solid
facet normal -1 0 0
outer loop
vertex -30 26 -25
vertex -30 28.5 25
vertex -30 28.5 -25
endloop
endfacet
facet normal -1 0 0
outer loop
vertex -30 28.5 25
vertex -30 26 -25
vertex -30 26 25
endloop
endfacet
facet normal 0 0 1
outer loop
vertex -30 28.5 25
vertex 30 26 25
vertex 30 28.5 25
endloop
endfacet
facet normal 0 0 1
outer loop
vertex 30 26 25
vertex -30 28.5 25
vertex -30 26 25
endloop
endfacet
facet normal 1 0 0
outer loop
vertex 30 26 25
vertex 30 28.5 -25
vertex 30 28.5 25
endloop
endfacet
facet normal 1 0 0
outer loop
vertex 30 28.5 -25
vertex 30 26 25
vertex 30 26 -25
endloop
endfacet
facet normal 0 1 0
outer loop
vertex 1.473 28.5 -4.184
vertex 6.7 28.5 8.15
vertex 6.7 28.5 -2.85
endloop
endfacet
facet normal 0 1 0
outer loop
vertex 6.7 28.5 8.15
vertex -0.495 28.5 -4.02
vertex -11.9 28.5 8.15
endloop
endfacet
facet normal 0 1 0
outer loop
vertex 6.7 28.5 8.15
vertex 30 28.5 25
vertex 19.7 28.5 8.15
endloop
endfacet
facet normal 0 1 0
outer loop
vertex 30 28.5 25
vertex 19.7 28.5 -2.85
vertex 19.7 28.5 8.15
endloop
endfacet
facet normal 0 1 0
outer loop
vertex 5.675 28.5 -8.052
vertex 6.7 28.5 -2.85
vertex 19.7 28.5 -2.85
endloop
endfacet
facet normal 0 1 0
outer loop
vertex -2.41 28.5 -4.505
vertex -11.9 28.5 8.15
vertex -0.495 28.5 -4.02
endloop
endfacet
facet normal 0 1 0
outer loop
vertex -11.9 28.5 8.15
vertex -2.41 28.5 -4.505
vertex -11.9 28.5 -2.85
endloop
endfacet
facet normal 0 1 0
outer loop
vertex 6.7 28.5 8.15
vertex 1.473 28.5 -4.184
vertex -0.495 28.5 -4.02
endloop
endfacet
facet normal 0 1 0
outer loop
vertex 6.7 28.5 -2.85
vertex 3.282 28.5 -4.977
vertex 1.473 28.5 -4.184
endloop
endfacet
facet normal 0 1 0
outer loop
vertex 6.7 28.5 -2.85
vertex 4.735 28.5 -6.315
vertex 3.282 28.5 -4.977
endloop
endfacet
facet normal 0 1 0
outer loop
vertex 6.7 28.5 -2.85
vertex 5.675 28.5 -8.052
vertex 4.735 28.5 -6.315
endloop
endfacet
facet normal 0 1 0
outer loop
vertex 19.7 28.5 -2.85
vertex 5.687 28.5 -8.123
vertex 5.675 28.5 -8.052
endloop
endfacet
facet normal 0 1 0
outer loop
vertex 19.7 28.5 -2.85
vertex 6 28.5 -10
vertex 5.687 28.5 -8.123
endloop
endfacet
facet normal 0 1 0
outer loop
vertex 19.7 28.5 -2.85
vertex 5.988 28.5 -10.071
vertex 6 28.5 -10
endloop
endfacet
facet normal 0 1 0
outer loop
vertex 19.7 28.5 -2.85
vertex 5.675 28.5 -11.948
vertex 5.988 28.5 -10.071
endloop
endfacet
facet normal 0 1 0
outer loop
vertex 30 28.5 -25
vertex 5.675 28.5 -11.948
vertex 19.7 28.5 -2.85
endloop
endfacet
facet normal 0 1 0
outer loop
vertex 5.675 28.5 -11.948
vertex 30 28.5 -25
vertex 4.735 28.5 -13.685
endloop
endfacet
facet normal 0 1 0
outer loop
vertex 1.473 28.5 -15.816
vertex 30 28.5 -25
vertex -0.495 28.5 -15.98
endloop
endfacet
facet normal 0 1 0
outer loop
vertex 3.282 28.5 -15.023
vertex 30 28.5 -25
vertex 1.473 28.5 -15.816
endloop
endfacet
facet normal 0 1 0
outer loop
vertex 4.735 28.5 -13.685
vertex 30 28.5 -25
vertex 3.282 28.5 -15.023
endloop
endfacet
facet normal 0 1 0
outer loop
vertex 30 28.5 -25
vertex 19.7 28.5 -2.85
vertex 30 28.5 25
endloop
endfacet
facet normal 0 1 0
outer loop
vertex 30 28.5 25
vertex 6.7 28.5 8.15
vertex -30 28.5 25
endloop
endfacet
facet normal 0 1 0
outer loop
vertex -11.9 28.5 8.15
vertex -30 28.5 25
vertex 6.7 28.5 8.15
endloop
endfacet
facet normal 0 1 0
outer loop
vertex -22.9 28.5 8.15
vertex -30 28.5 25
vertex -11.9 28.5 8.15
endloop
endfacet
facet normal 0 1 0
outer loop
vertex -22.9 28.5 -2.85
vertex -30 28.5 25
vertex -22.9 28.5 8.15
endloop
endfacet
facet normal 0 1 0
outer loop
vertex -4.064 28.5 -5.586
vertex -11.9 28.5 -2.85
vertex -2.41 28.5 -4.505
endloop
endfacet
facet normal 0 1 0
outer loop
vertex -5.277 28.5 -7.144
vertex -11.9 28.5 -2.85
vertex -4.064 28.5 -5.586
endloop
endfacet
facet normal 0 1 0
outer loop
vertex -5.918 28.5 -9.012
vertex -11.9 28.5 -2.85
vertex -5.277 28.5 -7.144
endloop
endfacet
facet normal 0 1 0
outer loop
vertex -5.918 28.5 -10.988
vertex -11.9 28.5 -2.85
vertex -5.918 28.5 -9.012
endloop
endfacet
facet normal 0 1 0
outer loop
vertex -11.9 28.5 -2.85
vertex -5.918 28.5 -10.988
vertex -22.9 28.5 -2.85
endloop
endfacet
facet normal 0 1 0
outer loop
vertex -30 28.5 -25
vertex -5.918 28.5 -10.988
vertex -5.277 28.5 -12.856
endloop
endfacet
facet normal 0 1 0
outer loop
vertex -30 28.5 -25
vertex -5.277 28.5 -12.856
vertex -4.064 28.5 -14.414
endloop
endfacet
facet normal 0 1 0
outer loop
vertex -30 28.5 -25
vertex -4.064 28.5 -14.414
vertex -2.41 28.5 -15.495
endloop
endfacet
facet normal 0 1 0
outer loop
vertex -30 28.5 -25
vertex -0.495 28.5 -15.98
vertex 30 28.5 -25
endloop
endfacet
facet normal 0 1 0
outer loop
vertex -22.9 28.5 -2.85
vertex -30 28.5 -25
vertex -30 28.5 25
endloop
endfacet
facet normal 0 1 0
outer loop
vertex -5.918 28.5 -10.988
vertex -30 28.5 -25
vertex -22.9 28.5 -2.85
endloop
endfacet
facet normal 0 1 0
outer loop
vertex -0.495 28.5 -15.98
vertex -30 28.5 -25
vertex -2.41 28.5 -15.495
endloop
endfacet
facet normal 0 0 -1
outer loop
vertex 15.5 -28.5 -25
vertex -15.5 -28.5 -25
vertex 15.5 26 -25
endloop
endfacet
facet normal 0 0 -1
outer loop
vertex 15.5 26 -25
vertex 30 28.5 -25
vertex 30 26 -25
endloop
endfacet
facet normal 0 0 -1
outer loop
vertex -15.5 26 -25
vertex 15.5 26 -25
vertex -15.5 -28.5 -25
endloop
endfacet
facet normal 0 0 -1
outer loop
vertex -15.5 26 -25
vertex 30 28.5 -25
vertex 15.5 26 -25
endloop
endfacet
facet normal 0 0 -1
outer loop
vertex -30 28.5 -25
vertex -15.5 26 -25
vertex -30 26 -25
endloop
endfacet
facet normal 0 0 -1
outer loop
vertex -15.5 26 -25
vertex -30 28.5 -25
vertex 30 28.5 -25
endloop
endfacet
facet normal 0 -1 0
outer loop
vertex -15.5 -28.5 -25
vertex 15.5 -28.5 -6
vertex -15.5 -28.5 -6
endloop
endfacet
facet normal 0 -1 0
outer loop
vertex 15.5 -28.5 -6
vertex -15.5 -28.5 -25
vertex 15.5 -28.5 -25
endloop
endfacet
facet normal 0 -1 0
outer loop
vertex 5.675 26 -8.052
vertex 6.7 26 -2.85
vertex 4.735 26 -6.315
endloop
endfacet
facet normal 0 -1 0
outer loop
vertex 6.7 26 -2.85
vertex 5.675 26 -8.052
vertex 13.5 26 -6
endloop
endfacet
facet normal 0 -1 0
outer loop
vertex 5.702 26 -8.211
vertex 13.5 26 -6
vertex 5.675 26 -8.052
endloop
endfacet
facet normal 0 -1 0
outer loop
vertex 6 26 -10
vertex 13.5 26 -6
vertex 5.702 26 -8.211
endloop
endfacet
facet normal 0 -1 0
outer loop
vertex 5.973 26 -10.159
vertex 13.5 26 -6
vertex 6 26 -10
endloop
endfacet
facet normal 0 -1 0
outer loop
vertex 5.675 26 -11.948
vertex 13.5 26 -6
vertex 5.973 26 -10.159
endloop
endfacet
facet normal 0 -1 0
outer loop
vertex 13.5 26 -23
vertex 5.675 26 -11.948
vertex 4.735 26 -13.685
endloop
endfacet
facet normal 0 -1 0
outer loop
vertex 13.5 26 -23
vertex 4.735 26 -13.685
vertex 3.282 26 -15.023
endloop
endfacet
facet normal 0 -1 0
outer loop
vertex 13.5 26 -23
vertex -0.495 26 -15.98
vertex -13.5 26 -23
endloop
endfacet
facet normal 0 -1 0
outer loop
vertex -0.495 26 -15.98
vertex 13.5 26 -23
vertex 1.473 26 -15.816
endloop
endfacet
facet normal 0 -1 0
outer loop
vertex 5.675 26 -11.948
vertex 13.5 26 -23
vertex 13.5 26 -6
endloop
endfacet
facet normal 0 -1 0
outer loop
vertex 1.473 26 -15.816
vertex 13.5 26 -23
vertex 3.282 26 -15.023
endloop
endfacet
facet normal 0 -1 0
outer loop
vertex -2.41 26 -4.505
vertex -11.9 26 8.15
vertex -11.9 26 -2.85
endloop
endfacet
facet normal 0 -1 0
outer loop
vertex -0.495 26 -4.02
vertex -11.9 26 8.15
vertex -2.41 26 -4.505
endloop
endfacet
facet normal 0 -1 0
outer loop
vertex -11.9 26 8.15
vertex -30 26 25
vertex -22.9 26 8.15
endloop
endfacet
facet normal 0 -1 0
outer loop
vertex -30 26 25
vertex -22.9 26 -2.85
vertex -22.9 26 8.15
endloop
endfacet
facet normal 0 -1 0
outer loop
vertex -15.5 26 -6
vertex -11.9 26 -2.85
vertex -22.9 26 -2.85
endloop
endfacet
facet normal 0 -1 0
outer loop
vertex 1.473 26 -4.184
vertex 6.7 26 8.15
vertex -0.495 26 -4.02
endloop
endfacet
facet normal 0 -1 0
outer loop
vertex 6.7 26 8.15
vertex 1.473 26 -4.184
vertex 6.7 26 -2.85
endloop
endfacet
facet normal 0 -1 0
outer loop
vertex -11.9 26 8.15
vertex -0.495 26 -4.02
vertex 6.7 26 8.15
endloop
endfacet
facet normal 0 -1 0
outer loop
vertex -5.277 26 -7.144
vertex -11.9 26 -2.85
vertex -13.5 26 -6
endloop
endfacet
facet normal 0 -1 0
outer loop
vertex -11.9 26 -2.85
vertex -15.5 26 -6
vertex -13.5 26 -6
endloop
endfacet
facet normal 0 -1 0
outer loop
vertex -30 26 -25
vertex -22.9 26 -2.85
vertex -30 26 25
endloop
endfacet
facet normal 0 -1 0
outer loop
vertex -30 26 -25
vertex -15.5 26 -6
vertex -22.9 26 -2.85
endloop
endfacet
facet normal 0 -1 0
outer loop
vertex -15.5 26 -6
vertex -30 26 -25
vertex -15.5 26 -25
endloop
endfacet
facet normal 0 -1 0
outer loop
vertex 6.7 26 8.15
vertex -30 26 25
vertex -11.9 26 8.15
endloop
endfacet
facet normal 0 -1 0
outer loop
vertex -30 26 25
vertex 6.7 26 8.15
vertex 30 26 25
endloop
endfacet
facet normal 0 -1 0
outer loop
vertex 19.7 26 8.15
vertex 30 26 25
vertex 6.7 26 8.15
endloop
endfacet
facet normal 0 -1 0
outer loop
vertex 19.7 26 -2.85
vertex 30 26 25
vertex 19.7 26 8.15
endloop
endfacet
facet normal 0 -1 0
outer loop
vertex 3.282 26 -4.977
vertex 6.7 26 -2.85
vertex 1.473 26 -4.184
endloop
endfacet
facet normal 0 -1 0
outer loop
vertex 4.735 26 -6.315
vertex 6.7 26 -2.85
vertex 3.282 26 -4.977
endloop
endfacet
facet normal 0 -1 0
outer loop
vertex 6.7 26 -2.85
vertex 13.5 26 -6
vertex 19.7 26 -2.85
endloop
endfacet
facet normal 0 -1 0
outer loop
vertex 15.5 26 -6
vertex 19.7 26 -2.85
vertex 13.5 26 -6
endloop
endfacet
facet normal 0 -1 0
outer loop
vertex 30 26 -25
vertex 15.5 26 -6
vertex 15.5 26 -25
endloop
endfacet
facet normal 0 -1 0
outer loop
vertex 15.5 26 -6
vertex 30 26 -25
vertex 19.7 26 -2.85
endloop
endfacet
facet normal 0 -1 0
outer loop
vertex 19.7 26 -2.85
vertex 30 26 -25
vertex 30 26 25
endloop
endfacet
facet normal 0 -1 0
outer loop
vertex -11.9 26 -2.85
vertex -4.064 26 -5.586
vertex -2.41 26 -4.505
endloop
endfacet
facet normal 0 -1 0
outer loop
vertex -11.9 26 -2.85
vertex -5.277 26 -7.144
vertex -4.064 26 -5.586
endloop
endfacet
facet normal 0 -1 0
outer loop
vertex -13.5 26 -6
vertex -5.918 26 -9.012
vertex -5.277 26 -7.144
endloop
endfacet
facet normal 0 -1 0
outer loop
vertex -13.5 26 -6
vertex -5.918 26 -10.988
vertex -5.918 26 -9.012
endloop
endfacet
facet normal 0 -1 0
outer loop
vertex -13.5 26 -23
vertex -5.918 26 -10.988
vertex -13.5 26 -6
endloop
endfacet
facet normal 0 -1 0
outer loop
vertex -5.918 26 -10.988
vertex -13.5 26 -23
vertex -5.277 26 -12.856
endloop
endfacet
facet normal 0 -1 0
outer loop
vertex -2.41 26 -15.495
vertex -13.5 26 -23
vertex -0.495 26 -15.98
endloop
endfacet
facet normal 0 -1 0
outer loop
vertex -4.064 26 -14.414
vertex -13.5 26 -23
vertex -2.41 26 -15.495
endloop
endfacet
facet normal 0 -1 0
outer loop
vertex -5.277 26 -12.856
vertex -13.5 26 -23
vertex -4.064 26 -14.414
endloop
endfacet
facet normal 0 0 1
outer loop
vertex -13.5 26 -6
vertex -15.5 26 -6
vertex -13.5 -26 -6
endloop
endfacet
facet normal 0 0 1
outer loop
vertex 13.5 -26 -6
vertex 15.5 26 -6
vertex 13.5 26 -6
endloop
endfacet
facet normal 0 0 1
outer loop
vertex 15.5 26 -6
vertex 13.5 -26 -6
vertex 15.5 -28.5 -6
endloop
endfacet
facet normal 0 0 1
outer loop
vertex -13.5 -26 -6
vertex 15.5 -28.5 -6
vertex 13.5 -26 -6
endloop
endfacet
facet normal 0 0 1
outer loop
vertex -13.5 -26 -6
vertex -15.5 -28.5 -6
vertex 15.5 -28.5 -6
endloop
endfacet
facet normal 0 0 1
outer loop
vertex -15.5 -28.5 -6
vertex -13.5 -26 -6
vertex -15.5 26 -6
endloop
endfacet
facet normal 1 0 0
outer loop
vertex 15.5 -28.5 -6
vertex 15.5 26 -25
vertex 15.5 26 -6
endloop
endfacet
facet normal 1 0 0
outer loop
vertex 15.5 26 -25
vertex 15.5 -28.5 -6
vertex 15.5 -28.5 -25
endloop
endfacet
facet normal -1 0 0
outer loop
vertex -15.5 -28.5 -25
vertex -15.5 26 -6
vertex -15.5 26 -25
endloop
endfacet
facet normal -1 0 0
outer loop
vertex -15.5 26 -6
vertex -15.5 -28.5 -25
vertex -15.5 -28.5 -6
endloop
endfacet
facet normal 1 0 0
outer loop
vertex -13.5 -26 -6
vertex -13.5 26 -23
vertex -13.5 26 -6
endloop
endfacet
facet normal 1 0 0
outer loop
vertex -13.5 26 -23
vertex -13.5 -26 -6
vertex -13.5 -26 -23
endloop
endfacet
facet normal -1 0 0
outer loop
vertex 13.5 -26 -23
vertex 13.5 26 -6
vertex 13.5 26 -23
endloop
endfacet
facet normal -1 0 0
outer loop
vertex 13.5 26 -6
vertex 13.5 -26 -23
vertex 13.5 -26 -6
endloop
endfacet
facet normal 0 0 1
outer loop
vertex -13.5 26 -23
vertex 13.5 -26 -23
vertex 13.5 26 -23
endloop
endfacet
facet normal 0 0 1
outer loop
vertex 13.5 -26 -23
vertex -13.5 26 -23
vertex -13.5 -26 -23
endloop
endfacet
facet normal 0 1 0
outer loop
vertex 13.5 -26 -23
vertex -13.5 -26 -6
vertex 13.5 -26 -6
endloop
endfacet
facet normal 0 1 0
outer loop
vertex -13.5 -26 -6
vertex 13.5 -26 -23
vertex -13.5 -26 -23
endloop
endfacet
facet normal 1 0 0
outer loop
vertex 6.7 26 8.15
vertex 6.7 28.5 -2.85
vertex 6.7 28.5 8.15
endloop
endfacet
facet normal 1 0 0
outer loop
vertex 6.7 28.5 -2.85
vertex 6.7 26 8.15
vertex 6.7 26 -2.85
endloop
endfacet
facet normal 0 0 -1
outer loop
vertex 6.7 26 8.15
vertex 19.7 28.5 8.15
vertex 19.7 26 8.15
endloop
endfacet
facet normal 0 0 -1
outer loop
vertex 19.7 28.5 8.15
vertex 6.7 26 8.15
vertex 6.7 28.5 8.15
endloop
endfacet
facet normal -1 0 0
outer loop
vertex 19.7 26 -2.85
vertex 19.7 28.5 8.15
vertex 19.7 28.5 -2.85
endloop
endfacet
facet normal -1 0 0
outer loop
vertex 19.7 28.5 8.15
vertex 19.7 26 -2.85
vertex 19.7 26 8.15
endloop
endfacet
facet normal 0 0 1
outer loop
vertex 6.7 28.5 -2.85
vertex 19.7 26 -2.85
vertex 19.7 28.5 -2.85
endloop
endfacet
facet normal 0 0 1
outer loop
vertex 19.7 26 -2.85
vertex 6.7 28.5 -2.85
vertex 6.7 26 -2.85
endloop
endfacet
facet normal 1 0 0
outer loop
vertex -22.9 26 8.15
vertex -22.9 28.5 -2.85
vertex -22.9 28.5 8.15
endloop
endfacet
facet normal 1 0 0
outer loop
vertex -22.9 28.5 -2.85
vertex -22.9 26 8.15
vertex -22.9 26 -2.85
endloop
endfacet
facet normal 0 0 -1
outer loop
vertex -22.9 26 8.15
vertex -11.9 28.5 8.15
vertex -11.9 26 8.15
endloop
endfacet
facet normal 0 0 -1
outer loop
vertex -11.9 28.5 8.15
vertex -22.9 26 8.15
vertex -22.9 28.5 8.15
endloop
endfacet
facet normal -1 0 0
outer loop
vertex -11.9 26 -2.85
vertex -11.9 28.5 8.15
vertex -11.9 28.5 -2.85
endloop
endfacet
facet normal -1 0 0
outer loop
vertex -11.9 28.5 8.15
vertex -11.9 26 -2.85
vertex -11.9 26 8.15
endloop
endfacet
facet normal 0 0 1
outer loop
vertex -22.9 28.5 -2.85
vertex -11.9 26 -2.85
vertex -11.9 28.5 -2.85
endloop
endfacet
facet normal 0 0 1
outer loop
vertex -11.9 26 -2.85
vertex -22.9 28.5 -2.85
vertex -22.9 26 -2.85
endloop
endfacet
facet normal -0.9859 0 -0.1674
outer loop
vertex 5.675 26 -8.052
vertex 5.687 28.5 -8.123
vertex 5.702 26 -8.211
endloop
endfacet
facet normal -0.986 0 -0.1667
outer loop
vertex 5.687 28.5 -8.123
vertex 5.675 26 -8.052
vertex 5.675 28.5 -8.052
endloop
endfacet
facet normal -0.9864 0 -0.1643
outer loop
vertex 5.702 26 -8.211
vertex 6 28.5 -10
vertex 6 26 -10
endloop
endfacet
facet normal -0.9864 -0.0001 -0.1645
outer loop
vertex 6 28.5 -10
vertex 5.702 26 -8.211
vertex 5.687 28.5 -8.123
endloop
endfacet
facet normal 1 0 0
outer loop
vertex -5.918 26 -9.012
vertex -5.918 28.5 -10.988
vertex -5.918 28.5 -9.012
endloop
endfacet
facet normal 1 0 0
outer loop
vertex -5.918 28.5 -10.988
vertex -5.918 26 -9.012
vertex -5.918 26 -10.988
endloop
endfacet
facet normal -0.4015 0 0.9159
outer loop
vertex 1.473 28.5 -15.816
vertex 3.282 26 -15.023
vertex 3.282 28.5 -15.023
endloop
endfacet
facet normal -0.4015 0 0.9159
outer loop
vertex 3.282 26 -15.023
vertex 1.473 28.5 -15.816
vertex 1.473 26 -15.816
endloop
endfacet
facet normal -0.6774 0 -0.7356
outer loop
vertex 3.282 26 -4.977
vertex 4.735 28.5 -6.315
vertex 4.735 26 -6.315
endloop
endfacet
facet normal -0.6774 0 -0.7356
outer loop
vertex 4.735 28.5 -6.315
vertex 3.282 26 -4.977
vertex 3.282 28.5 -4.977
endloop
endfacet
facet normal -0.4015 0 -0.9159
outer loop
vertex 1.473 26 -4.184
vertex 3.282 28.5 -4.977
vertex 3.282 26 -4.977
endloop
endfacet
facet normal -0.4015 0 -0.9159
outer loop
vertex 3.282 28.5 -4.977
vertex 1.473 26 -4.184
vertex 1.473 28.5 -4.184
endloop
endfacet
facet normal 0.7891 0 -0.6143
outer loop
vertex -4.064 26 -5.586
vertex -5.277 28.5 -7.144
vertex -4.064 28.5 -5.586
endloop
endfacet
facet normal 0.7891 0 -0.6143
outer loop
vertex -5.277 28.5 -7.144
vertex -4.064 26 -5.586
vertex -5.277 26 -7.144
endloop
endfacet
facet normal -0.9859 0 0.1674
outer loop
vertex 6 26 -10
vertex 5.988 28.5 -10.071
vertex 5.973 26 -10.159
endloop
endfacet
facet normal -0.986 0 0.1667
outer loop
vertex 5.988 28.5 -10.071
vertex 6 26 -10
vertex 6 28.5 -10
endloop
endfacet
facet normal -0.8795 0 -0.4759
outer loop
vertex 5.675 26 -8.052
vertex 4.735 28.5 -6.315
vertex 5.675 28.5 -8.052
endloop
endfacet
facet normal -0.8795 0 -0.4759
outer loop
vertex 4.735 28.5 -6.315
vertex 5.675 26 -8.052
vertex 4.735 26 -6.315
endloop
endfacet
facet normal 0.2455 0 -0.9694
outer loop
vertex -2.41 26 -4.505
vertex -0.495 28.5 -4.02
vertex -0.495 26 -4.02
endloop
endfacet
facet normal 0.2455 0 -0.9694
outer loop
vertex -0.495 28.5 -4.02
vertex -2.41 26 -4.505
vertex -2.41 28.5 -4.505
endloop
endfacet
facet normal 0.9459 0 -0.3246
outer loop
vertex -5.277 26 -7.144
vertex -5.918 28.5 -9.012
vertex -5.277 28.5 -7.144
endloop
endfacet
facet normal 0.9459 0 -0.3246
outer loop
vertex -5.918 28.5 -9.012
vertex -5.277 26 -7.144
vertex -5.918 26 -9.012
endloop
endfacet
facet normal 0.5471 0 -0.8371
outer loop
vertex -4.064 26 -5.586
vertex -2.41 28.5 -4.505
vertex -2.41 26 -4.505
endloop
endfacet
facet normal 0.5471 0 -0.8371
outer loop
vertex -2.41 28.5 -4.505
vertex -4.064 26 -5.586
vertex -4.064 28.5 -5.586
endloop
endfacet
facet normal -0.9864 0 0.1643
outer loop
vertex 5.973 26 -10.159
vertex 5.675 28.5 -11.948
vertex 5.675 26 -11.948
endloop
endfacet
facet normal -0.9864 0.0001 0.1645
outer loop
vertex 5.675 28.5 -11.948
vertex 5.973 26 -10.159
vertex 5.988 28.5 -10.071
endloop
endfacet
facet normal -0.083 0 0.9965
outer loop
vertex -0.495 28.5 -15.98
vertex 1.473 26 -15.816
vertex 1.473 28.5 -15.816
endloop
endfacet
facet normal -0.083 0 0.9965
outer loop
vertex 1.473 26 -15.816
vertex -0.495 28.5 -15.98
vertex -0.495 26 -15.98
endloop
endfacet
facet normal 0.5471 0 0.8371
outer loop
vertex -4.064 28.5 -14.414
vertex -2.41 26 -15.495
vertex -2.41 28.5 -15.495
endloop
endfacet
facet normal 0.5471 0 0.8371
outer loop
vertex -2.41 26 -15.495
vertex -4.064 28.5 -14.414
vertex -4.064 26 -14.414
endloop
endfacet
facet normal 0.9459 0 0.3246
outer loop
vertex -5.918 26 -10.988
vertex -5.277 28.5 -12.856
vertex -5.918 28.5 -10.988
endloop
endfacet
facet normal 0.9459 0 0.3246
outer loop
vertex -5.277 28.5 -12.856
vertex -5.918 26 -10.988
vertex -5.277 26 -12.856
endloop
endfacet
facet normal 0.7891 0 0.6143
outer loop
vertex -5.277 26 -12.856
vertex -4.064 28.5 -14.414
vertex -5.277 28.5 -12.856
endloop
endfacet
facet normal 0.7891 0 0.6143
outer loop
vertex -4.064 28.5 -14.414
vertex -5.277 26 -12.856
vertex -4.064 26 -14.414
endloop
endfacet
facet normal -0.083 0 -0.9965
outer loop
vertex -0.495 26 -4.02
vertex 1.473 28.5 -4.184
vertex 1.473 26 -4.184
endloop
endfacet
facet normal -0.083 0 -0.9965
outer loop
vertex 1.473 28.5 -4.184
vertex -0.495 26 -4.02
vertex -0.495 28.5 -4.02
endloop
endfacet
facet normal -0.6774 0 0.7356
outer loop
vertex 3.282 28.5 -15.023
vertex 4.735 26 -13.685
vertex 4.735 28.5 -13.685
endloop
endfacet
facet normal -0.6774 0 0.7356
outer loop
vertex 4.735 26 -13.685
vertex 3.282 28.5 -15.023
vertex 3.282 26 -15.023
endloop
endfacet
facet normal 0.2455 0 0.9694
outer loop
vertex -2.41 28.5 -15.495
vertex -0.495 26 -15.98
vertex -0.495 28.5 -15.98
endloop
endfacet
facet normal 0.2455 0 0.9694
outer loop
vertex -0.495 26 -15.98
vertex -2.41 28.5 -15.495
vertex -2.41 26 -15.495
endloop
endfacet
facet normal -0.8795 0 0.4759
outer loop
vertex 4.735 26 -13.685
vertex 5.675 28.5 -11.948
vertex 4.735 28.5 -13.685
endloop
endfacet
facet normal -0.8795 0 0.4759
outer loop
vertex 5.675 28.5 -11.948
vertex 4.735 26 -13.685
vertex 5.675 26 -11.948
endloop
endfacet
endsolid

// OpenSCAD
difference(){
    cube([60,57,50],center=true);
    translate([0,-2,19])
    cube([61,56,50],center=true);
    translate([30+31/2,-2,-1])
    cube([60,56,50],center=true); 
    translate([-(30+31/2),-2,-1])
    cube([60,56,50],center=true);
    translate([0,0,2])
    cube([27,52,50],center=true);
    translate([12.2+1,0,2.65])
    cube([13,100,11],center=true);
    translate([-18.4+1,0,2.65])
    cube([11,100,11],center=true);
    translate([0,3,-10])
    rotate([90,0,0])
    cylinder(r=6,h=55,center=true);    
}
